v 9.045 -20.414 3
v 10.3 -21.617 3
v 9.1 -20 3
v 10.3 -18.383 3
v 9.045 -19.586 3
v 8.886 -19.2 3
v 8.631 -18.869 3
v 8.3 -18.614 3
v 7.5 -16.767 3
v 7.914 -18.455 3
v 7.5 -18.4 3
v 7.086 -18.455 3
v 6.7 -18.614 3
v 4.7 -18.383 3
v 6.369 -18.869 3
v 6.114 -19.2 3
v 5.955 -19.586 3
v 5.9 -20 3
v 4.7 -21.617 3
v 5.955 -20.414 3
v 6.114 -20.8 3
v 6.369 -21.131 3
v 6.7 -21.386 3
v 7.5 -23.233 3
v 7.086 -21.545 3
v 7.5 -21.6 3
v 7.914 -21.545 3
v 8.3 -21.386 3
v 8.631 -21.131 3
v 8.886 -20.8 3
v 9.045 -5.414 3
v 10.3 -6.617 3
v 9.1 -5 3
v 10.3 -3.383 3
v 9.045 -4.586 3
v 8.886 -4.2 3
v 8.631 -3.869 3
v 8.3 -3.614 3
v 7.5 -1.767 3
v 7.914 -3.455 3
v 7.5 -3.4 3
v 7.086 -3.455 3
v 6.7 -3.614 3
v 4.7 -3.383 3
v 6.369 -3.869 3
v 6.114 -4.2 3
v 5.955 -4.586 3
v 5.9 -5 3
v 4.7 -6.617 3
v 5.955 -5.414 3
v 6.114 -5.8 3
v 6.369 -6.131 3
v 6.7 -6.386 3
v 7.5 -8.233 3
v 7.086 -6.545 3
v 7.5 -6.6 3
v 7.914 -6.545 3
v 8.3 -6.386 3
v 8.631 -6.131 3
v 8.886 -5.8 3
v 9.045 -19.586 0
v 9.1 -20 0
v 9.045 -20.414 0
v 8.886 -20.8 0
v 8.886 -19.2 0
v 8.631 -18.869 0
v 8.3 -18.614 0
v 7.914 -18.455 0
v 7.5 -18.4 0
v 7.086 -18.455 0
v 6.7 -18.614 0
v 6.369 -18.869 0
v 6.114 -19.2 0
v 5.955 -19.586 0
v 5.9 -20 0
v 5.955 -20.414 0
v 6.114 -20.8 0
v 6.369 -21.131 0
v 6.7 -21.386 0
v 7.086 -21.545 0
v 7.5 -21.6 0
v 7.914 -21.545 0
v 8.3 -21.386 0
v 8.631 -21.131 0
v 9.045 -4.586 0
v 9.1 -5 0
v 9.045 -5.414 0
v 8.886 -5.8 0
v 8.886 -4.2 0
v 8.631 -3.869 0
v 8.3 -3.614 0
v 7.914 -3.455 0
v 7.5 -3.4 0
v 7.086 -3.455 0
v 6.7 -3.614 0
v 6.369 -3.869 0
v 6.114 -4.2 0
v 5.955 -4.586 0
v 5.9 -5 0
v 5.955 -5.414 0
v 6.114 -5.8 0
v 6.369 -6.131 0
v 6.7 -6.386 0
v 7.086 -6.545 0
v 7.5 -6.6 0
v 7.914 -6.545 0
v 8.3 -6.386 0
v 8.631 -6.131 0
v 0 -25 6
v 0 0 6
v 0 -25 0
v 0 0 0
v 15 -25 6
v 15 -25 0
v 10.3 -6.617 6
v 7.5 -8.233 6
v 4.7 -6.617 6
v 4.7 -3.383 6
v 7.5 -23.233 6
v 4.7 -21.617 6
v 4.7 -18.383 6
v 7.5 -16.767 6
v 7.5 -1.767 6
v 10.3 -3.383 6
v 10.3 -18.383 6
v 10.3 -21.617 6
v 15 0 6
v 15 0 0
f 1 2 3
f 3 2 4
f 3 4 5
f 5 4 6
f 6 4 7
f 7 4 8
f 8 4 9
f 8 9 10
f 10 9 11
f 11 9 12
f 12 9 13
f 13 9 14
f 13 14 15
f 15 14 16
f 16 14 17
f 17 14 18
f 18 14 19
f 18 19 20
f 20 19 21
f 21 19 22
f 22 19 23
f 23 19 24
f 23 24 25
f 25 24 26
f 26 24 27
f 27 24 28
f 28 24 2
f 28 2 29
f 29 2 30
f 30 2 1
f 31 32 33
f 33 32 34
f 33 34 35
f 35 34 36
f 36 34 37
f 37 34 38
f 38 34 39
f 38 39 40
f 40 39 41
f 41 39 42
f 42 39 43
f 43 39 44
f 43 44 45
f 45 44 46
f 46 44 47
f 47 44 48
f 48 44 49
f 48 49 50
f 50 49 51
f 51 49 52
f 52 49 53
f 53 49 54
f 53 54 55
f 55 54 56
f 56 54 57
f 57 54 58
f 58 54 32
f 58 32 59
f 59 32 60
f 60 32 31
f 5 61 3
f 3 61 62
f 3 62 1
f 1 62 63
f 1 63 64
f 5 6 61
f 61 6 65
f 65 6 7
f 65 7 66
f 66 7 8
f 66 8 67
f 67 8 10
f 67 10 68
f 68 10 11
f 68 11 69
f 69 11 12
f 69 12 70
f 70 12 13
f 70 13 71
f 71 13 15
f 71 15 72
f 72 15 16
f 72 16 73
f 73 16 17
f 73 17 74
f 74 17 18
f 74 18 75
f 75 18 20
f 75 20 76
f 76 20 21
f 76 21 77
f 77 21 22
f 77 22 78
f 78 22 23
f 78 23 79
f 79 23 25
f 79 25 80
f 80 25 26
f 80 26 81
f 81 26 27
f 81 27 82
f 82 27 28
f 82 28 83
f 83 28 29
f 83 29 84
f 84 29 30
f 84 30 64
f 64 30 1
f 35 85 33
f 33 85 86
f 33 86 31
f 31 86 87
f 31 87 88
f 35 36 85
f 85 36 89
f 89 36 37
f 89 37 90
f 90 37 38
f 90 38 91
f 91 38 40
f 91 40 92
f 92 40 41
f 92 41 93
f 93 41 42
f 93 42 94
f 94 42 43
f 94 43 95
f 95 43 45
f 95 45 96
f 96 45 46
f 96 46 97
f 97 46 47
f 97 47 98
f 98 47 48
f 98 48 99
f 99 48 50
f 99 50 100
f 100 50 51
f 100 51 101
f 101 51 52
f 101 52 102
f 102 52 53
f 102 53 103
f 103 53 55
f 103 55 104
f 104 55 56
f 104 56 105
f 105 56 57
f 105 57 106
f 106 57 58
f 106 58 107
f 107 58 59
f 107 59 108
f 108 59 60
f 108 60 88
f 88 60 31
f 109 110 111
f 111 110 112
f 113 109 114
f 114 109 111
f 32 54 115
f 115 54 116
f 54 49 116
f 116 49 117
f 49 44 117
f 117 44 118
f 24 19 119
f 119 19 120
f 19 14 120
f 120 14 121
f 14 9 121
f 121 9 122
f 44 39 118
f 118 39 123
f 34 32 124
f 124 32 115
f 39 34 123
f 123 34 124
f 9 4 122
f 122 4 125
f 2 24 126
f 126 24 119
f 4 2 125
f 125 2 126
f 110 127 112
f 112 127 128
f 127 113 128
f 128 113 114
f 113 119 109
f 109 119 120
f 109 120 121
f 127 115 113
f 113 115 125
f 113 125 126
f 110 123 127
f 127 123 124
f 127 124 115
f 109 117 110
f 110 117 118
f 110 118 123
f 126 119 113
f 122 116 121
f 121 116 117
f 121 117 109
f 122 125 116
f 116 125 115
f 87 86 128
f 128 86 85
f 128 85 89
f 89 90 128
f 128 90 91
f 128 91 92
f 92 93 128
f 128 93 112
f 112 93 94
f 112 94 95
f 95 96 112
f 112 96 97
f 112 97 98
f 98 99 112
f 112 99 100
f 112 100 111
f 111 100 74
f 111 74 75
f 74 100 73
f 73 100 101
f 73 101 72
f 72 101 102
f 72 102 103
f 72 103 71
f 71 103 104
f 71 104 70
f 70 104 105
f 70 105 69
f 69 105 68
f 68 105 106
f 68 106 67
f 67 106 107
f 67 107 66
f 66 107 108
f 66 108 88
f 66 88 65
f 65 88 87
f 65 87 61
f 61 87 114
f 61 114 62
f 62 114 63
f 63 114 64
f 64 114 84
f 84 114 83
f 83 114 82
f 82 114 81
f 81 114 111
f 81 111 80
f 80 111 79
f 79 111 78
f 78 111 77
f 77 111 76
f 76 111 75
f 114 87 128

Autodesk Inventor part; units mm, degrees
ref_plane "YZ Plane" through (0, 0, 0) normal (1, 0, 0) x (0, 1, 0)
ref_plane "XZ Plane" through (0, 0, 0) normal (0, 1, 0) x (-1, 0, 0)
ref_plane "XY Plane" through (0, 0, 0) normal (0, 0, 1) x (1, 0, 0)
sketch "Skizze1" plane through (0, 0, 0) normal (0, 0, 1) x (1, 0, 0)
  line L0 (0, 0) -> (15, 0)
  line L1 (15, 0) -> (15, -25)
  line L2 (15, -25) -> (0, -25)
  line L3 (0, -25) -> (0, 0)
  line L4 (15.813, -10.2189) -> (15.812, -10.2179)
  line L5 (15.8113, -10.2187) -> (15.812, -10.2194)
  line L6 (15.812, -10.2179) -> (15.8113, -10.2187)
  line L7 (15.812, -10.2179) -> (15.8113, -10.2187)
  line L8 (15.812, -10.2179) -> (15.8113, -10.2187)
  line L9 (15.8113, -10.2187) -> (15.812, -10.2194)
  line L10 (15.8113, -10.2187) -> (15.812, -10.2194)
  line L11 (15.813, -10.2189) -> (15.812, -10.2179)
  line L12 (15.813, -10.2189) -> (15.812, -10.2179)
  line L13 (15.812, -10.2179) -> (15.8113, -10.2187)
  line L14 (15.813, -10.2189) -> (15.812, -10.2179)
  line L15 (15.8113, -10.2187) -> (15.812, -10.2194)
  line L16 (7.5, -8.2332) -> (4.7, -6.6166)
  line L17 (4.7, -6.6166) -> (4.7, -3.3834)
  line L18 (4.7, -3.3834) -> (7.5, -1.7668)
  line L19 (7.5, -1.7668) -> (10.3, -3.3834)
  line L20 (10.3, -3.3834) -> (10.3, -6.6166)
  line L21 (10.3, -6.6166) -> (7.5, -8.2332)
  circle A0 centre (7.5, -5) radius 1.6
  line L22 (10.3, -18.3834) -> (10.3, -21.6166)
  line L23 (10.3, -21.6166) -> (7.5, -23.2332)
  line L24 (7.5, -23.2332) -> (4.7, -21.6166)
  circle A1 centre (7.5, -20) radius 1.6
  line L25 (7.5, -16.7668) -> (10.3, -18.3834)
  line L26 (4.7, -18.3834) -> (7.5, -16.7668)
  line L27 (4.7, -21.6166) -> (4.7, -18.3834)
  dimension "d0" = 25
  dimension "d1" = 15
  dimension "d2" = 5.6
  dimension "d5" = 3.2
  dimension "d6" = 5.6
  dimension "d7" = 3.2
  dimension "d8" = 5
  dimension "d9" = 5
  dimension "d10" = 7.5
extrude "Extrusion1" add sketch "Skizze1" along normal blind 6 contours L0 L1 L2 L3
extrude "Extrusion2" add sketch "Skizze1" along normal blind 3 contours L0 L1 L2 L3 | L16 L17 L18 L19 L20 L21 | L22 L23 L24 L27 L26 L25
equation "\"d9\" = d8"
properties part number "Dribbler Motor Mount Upper Section"
